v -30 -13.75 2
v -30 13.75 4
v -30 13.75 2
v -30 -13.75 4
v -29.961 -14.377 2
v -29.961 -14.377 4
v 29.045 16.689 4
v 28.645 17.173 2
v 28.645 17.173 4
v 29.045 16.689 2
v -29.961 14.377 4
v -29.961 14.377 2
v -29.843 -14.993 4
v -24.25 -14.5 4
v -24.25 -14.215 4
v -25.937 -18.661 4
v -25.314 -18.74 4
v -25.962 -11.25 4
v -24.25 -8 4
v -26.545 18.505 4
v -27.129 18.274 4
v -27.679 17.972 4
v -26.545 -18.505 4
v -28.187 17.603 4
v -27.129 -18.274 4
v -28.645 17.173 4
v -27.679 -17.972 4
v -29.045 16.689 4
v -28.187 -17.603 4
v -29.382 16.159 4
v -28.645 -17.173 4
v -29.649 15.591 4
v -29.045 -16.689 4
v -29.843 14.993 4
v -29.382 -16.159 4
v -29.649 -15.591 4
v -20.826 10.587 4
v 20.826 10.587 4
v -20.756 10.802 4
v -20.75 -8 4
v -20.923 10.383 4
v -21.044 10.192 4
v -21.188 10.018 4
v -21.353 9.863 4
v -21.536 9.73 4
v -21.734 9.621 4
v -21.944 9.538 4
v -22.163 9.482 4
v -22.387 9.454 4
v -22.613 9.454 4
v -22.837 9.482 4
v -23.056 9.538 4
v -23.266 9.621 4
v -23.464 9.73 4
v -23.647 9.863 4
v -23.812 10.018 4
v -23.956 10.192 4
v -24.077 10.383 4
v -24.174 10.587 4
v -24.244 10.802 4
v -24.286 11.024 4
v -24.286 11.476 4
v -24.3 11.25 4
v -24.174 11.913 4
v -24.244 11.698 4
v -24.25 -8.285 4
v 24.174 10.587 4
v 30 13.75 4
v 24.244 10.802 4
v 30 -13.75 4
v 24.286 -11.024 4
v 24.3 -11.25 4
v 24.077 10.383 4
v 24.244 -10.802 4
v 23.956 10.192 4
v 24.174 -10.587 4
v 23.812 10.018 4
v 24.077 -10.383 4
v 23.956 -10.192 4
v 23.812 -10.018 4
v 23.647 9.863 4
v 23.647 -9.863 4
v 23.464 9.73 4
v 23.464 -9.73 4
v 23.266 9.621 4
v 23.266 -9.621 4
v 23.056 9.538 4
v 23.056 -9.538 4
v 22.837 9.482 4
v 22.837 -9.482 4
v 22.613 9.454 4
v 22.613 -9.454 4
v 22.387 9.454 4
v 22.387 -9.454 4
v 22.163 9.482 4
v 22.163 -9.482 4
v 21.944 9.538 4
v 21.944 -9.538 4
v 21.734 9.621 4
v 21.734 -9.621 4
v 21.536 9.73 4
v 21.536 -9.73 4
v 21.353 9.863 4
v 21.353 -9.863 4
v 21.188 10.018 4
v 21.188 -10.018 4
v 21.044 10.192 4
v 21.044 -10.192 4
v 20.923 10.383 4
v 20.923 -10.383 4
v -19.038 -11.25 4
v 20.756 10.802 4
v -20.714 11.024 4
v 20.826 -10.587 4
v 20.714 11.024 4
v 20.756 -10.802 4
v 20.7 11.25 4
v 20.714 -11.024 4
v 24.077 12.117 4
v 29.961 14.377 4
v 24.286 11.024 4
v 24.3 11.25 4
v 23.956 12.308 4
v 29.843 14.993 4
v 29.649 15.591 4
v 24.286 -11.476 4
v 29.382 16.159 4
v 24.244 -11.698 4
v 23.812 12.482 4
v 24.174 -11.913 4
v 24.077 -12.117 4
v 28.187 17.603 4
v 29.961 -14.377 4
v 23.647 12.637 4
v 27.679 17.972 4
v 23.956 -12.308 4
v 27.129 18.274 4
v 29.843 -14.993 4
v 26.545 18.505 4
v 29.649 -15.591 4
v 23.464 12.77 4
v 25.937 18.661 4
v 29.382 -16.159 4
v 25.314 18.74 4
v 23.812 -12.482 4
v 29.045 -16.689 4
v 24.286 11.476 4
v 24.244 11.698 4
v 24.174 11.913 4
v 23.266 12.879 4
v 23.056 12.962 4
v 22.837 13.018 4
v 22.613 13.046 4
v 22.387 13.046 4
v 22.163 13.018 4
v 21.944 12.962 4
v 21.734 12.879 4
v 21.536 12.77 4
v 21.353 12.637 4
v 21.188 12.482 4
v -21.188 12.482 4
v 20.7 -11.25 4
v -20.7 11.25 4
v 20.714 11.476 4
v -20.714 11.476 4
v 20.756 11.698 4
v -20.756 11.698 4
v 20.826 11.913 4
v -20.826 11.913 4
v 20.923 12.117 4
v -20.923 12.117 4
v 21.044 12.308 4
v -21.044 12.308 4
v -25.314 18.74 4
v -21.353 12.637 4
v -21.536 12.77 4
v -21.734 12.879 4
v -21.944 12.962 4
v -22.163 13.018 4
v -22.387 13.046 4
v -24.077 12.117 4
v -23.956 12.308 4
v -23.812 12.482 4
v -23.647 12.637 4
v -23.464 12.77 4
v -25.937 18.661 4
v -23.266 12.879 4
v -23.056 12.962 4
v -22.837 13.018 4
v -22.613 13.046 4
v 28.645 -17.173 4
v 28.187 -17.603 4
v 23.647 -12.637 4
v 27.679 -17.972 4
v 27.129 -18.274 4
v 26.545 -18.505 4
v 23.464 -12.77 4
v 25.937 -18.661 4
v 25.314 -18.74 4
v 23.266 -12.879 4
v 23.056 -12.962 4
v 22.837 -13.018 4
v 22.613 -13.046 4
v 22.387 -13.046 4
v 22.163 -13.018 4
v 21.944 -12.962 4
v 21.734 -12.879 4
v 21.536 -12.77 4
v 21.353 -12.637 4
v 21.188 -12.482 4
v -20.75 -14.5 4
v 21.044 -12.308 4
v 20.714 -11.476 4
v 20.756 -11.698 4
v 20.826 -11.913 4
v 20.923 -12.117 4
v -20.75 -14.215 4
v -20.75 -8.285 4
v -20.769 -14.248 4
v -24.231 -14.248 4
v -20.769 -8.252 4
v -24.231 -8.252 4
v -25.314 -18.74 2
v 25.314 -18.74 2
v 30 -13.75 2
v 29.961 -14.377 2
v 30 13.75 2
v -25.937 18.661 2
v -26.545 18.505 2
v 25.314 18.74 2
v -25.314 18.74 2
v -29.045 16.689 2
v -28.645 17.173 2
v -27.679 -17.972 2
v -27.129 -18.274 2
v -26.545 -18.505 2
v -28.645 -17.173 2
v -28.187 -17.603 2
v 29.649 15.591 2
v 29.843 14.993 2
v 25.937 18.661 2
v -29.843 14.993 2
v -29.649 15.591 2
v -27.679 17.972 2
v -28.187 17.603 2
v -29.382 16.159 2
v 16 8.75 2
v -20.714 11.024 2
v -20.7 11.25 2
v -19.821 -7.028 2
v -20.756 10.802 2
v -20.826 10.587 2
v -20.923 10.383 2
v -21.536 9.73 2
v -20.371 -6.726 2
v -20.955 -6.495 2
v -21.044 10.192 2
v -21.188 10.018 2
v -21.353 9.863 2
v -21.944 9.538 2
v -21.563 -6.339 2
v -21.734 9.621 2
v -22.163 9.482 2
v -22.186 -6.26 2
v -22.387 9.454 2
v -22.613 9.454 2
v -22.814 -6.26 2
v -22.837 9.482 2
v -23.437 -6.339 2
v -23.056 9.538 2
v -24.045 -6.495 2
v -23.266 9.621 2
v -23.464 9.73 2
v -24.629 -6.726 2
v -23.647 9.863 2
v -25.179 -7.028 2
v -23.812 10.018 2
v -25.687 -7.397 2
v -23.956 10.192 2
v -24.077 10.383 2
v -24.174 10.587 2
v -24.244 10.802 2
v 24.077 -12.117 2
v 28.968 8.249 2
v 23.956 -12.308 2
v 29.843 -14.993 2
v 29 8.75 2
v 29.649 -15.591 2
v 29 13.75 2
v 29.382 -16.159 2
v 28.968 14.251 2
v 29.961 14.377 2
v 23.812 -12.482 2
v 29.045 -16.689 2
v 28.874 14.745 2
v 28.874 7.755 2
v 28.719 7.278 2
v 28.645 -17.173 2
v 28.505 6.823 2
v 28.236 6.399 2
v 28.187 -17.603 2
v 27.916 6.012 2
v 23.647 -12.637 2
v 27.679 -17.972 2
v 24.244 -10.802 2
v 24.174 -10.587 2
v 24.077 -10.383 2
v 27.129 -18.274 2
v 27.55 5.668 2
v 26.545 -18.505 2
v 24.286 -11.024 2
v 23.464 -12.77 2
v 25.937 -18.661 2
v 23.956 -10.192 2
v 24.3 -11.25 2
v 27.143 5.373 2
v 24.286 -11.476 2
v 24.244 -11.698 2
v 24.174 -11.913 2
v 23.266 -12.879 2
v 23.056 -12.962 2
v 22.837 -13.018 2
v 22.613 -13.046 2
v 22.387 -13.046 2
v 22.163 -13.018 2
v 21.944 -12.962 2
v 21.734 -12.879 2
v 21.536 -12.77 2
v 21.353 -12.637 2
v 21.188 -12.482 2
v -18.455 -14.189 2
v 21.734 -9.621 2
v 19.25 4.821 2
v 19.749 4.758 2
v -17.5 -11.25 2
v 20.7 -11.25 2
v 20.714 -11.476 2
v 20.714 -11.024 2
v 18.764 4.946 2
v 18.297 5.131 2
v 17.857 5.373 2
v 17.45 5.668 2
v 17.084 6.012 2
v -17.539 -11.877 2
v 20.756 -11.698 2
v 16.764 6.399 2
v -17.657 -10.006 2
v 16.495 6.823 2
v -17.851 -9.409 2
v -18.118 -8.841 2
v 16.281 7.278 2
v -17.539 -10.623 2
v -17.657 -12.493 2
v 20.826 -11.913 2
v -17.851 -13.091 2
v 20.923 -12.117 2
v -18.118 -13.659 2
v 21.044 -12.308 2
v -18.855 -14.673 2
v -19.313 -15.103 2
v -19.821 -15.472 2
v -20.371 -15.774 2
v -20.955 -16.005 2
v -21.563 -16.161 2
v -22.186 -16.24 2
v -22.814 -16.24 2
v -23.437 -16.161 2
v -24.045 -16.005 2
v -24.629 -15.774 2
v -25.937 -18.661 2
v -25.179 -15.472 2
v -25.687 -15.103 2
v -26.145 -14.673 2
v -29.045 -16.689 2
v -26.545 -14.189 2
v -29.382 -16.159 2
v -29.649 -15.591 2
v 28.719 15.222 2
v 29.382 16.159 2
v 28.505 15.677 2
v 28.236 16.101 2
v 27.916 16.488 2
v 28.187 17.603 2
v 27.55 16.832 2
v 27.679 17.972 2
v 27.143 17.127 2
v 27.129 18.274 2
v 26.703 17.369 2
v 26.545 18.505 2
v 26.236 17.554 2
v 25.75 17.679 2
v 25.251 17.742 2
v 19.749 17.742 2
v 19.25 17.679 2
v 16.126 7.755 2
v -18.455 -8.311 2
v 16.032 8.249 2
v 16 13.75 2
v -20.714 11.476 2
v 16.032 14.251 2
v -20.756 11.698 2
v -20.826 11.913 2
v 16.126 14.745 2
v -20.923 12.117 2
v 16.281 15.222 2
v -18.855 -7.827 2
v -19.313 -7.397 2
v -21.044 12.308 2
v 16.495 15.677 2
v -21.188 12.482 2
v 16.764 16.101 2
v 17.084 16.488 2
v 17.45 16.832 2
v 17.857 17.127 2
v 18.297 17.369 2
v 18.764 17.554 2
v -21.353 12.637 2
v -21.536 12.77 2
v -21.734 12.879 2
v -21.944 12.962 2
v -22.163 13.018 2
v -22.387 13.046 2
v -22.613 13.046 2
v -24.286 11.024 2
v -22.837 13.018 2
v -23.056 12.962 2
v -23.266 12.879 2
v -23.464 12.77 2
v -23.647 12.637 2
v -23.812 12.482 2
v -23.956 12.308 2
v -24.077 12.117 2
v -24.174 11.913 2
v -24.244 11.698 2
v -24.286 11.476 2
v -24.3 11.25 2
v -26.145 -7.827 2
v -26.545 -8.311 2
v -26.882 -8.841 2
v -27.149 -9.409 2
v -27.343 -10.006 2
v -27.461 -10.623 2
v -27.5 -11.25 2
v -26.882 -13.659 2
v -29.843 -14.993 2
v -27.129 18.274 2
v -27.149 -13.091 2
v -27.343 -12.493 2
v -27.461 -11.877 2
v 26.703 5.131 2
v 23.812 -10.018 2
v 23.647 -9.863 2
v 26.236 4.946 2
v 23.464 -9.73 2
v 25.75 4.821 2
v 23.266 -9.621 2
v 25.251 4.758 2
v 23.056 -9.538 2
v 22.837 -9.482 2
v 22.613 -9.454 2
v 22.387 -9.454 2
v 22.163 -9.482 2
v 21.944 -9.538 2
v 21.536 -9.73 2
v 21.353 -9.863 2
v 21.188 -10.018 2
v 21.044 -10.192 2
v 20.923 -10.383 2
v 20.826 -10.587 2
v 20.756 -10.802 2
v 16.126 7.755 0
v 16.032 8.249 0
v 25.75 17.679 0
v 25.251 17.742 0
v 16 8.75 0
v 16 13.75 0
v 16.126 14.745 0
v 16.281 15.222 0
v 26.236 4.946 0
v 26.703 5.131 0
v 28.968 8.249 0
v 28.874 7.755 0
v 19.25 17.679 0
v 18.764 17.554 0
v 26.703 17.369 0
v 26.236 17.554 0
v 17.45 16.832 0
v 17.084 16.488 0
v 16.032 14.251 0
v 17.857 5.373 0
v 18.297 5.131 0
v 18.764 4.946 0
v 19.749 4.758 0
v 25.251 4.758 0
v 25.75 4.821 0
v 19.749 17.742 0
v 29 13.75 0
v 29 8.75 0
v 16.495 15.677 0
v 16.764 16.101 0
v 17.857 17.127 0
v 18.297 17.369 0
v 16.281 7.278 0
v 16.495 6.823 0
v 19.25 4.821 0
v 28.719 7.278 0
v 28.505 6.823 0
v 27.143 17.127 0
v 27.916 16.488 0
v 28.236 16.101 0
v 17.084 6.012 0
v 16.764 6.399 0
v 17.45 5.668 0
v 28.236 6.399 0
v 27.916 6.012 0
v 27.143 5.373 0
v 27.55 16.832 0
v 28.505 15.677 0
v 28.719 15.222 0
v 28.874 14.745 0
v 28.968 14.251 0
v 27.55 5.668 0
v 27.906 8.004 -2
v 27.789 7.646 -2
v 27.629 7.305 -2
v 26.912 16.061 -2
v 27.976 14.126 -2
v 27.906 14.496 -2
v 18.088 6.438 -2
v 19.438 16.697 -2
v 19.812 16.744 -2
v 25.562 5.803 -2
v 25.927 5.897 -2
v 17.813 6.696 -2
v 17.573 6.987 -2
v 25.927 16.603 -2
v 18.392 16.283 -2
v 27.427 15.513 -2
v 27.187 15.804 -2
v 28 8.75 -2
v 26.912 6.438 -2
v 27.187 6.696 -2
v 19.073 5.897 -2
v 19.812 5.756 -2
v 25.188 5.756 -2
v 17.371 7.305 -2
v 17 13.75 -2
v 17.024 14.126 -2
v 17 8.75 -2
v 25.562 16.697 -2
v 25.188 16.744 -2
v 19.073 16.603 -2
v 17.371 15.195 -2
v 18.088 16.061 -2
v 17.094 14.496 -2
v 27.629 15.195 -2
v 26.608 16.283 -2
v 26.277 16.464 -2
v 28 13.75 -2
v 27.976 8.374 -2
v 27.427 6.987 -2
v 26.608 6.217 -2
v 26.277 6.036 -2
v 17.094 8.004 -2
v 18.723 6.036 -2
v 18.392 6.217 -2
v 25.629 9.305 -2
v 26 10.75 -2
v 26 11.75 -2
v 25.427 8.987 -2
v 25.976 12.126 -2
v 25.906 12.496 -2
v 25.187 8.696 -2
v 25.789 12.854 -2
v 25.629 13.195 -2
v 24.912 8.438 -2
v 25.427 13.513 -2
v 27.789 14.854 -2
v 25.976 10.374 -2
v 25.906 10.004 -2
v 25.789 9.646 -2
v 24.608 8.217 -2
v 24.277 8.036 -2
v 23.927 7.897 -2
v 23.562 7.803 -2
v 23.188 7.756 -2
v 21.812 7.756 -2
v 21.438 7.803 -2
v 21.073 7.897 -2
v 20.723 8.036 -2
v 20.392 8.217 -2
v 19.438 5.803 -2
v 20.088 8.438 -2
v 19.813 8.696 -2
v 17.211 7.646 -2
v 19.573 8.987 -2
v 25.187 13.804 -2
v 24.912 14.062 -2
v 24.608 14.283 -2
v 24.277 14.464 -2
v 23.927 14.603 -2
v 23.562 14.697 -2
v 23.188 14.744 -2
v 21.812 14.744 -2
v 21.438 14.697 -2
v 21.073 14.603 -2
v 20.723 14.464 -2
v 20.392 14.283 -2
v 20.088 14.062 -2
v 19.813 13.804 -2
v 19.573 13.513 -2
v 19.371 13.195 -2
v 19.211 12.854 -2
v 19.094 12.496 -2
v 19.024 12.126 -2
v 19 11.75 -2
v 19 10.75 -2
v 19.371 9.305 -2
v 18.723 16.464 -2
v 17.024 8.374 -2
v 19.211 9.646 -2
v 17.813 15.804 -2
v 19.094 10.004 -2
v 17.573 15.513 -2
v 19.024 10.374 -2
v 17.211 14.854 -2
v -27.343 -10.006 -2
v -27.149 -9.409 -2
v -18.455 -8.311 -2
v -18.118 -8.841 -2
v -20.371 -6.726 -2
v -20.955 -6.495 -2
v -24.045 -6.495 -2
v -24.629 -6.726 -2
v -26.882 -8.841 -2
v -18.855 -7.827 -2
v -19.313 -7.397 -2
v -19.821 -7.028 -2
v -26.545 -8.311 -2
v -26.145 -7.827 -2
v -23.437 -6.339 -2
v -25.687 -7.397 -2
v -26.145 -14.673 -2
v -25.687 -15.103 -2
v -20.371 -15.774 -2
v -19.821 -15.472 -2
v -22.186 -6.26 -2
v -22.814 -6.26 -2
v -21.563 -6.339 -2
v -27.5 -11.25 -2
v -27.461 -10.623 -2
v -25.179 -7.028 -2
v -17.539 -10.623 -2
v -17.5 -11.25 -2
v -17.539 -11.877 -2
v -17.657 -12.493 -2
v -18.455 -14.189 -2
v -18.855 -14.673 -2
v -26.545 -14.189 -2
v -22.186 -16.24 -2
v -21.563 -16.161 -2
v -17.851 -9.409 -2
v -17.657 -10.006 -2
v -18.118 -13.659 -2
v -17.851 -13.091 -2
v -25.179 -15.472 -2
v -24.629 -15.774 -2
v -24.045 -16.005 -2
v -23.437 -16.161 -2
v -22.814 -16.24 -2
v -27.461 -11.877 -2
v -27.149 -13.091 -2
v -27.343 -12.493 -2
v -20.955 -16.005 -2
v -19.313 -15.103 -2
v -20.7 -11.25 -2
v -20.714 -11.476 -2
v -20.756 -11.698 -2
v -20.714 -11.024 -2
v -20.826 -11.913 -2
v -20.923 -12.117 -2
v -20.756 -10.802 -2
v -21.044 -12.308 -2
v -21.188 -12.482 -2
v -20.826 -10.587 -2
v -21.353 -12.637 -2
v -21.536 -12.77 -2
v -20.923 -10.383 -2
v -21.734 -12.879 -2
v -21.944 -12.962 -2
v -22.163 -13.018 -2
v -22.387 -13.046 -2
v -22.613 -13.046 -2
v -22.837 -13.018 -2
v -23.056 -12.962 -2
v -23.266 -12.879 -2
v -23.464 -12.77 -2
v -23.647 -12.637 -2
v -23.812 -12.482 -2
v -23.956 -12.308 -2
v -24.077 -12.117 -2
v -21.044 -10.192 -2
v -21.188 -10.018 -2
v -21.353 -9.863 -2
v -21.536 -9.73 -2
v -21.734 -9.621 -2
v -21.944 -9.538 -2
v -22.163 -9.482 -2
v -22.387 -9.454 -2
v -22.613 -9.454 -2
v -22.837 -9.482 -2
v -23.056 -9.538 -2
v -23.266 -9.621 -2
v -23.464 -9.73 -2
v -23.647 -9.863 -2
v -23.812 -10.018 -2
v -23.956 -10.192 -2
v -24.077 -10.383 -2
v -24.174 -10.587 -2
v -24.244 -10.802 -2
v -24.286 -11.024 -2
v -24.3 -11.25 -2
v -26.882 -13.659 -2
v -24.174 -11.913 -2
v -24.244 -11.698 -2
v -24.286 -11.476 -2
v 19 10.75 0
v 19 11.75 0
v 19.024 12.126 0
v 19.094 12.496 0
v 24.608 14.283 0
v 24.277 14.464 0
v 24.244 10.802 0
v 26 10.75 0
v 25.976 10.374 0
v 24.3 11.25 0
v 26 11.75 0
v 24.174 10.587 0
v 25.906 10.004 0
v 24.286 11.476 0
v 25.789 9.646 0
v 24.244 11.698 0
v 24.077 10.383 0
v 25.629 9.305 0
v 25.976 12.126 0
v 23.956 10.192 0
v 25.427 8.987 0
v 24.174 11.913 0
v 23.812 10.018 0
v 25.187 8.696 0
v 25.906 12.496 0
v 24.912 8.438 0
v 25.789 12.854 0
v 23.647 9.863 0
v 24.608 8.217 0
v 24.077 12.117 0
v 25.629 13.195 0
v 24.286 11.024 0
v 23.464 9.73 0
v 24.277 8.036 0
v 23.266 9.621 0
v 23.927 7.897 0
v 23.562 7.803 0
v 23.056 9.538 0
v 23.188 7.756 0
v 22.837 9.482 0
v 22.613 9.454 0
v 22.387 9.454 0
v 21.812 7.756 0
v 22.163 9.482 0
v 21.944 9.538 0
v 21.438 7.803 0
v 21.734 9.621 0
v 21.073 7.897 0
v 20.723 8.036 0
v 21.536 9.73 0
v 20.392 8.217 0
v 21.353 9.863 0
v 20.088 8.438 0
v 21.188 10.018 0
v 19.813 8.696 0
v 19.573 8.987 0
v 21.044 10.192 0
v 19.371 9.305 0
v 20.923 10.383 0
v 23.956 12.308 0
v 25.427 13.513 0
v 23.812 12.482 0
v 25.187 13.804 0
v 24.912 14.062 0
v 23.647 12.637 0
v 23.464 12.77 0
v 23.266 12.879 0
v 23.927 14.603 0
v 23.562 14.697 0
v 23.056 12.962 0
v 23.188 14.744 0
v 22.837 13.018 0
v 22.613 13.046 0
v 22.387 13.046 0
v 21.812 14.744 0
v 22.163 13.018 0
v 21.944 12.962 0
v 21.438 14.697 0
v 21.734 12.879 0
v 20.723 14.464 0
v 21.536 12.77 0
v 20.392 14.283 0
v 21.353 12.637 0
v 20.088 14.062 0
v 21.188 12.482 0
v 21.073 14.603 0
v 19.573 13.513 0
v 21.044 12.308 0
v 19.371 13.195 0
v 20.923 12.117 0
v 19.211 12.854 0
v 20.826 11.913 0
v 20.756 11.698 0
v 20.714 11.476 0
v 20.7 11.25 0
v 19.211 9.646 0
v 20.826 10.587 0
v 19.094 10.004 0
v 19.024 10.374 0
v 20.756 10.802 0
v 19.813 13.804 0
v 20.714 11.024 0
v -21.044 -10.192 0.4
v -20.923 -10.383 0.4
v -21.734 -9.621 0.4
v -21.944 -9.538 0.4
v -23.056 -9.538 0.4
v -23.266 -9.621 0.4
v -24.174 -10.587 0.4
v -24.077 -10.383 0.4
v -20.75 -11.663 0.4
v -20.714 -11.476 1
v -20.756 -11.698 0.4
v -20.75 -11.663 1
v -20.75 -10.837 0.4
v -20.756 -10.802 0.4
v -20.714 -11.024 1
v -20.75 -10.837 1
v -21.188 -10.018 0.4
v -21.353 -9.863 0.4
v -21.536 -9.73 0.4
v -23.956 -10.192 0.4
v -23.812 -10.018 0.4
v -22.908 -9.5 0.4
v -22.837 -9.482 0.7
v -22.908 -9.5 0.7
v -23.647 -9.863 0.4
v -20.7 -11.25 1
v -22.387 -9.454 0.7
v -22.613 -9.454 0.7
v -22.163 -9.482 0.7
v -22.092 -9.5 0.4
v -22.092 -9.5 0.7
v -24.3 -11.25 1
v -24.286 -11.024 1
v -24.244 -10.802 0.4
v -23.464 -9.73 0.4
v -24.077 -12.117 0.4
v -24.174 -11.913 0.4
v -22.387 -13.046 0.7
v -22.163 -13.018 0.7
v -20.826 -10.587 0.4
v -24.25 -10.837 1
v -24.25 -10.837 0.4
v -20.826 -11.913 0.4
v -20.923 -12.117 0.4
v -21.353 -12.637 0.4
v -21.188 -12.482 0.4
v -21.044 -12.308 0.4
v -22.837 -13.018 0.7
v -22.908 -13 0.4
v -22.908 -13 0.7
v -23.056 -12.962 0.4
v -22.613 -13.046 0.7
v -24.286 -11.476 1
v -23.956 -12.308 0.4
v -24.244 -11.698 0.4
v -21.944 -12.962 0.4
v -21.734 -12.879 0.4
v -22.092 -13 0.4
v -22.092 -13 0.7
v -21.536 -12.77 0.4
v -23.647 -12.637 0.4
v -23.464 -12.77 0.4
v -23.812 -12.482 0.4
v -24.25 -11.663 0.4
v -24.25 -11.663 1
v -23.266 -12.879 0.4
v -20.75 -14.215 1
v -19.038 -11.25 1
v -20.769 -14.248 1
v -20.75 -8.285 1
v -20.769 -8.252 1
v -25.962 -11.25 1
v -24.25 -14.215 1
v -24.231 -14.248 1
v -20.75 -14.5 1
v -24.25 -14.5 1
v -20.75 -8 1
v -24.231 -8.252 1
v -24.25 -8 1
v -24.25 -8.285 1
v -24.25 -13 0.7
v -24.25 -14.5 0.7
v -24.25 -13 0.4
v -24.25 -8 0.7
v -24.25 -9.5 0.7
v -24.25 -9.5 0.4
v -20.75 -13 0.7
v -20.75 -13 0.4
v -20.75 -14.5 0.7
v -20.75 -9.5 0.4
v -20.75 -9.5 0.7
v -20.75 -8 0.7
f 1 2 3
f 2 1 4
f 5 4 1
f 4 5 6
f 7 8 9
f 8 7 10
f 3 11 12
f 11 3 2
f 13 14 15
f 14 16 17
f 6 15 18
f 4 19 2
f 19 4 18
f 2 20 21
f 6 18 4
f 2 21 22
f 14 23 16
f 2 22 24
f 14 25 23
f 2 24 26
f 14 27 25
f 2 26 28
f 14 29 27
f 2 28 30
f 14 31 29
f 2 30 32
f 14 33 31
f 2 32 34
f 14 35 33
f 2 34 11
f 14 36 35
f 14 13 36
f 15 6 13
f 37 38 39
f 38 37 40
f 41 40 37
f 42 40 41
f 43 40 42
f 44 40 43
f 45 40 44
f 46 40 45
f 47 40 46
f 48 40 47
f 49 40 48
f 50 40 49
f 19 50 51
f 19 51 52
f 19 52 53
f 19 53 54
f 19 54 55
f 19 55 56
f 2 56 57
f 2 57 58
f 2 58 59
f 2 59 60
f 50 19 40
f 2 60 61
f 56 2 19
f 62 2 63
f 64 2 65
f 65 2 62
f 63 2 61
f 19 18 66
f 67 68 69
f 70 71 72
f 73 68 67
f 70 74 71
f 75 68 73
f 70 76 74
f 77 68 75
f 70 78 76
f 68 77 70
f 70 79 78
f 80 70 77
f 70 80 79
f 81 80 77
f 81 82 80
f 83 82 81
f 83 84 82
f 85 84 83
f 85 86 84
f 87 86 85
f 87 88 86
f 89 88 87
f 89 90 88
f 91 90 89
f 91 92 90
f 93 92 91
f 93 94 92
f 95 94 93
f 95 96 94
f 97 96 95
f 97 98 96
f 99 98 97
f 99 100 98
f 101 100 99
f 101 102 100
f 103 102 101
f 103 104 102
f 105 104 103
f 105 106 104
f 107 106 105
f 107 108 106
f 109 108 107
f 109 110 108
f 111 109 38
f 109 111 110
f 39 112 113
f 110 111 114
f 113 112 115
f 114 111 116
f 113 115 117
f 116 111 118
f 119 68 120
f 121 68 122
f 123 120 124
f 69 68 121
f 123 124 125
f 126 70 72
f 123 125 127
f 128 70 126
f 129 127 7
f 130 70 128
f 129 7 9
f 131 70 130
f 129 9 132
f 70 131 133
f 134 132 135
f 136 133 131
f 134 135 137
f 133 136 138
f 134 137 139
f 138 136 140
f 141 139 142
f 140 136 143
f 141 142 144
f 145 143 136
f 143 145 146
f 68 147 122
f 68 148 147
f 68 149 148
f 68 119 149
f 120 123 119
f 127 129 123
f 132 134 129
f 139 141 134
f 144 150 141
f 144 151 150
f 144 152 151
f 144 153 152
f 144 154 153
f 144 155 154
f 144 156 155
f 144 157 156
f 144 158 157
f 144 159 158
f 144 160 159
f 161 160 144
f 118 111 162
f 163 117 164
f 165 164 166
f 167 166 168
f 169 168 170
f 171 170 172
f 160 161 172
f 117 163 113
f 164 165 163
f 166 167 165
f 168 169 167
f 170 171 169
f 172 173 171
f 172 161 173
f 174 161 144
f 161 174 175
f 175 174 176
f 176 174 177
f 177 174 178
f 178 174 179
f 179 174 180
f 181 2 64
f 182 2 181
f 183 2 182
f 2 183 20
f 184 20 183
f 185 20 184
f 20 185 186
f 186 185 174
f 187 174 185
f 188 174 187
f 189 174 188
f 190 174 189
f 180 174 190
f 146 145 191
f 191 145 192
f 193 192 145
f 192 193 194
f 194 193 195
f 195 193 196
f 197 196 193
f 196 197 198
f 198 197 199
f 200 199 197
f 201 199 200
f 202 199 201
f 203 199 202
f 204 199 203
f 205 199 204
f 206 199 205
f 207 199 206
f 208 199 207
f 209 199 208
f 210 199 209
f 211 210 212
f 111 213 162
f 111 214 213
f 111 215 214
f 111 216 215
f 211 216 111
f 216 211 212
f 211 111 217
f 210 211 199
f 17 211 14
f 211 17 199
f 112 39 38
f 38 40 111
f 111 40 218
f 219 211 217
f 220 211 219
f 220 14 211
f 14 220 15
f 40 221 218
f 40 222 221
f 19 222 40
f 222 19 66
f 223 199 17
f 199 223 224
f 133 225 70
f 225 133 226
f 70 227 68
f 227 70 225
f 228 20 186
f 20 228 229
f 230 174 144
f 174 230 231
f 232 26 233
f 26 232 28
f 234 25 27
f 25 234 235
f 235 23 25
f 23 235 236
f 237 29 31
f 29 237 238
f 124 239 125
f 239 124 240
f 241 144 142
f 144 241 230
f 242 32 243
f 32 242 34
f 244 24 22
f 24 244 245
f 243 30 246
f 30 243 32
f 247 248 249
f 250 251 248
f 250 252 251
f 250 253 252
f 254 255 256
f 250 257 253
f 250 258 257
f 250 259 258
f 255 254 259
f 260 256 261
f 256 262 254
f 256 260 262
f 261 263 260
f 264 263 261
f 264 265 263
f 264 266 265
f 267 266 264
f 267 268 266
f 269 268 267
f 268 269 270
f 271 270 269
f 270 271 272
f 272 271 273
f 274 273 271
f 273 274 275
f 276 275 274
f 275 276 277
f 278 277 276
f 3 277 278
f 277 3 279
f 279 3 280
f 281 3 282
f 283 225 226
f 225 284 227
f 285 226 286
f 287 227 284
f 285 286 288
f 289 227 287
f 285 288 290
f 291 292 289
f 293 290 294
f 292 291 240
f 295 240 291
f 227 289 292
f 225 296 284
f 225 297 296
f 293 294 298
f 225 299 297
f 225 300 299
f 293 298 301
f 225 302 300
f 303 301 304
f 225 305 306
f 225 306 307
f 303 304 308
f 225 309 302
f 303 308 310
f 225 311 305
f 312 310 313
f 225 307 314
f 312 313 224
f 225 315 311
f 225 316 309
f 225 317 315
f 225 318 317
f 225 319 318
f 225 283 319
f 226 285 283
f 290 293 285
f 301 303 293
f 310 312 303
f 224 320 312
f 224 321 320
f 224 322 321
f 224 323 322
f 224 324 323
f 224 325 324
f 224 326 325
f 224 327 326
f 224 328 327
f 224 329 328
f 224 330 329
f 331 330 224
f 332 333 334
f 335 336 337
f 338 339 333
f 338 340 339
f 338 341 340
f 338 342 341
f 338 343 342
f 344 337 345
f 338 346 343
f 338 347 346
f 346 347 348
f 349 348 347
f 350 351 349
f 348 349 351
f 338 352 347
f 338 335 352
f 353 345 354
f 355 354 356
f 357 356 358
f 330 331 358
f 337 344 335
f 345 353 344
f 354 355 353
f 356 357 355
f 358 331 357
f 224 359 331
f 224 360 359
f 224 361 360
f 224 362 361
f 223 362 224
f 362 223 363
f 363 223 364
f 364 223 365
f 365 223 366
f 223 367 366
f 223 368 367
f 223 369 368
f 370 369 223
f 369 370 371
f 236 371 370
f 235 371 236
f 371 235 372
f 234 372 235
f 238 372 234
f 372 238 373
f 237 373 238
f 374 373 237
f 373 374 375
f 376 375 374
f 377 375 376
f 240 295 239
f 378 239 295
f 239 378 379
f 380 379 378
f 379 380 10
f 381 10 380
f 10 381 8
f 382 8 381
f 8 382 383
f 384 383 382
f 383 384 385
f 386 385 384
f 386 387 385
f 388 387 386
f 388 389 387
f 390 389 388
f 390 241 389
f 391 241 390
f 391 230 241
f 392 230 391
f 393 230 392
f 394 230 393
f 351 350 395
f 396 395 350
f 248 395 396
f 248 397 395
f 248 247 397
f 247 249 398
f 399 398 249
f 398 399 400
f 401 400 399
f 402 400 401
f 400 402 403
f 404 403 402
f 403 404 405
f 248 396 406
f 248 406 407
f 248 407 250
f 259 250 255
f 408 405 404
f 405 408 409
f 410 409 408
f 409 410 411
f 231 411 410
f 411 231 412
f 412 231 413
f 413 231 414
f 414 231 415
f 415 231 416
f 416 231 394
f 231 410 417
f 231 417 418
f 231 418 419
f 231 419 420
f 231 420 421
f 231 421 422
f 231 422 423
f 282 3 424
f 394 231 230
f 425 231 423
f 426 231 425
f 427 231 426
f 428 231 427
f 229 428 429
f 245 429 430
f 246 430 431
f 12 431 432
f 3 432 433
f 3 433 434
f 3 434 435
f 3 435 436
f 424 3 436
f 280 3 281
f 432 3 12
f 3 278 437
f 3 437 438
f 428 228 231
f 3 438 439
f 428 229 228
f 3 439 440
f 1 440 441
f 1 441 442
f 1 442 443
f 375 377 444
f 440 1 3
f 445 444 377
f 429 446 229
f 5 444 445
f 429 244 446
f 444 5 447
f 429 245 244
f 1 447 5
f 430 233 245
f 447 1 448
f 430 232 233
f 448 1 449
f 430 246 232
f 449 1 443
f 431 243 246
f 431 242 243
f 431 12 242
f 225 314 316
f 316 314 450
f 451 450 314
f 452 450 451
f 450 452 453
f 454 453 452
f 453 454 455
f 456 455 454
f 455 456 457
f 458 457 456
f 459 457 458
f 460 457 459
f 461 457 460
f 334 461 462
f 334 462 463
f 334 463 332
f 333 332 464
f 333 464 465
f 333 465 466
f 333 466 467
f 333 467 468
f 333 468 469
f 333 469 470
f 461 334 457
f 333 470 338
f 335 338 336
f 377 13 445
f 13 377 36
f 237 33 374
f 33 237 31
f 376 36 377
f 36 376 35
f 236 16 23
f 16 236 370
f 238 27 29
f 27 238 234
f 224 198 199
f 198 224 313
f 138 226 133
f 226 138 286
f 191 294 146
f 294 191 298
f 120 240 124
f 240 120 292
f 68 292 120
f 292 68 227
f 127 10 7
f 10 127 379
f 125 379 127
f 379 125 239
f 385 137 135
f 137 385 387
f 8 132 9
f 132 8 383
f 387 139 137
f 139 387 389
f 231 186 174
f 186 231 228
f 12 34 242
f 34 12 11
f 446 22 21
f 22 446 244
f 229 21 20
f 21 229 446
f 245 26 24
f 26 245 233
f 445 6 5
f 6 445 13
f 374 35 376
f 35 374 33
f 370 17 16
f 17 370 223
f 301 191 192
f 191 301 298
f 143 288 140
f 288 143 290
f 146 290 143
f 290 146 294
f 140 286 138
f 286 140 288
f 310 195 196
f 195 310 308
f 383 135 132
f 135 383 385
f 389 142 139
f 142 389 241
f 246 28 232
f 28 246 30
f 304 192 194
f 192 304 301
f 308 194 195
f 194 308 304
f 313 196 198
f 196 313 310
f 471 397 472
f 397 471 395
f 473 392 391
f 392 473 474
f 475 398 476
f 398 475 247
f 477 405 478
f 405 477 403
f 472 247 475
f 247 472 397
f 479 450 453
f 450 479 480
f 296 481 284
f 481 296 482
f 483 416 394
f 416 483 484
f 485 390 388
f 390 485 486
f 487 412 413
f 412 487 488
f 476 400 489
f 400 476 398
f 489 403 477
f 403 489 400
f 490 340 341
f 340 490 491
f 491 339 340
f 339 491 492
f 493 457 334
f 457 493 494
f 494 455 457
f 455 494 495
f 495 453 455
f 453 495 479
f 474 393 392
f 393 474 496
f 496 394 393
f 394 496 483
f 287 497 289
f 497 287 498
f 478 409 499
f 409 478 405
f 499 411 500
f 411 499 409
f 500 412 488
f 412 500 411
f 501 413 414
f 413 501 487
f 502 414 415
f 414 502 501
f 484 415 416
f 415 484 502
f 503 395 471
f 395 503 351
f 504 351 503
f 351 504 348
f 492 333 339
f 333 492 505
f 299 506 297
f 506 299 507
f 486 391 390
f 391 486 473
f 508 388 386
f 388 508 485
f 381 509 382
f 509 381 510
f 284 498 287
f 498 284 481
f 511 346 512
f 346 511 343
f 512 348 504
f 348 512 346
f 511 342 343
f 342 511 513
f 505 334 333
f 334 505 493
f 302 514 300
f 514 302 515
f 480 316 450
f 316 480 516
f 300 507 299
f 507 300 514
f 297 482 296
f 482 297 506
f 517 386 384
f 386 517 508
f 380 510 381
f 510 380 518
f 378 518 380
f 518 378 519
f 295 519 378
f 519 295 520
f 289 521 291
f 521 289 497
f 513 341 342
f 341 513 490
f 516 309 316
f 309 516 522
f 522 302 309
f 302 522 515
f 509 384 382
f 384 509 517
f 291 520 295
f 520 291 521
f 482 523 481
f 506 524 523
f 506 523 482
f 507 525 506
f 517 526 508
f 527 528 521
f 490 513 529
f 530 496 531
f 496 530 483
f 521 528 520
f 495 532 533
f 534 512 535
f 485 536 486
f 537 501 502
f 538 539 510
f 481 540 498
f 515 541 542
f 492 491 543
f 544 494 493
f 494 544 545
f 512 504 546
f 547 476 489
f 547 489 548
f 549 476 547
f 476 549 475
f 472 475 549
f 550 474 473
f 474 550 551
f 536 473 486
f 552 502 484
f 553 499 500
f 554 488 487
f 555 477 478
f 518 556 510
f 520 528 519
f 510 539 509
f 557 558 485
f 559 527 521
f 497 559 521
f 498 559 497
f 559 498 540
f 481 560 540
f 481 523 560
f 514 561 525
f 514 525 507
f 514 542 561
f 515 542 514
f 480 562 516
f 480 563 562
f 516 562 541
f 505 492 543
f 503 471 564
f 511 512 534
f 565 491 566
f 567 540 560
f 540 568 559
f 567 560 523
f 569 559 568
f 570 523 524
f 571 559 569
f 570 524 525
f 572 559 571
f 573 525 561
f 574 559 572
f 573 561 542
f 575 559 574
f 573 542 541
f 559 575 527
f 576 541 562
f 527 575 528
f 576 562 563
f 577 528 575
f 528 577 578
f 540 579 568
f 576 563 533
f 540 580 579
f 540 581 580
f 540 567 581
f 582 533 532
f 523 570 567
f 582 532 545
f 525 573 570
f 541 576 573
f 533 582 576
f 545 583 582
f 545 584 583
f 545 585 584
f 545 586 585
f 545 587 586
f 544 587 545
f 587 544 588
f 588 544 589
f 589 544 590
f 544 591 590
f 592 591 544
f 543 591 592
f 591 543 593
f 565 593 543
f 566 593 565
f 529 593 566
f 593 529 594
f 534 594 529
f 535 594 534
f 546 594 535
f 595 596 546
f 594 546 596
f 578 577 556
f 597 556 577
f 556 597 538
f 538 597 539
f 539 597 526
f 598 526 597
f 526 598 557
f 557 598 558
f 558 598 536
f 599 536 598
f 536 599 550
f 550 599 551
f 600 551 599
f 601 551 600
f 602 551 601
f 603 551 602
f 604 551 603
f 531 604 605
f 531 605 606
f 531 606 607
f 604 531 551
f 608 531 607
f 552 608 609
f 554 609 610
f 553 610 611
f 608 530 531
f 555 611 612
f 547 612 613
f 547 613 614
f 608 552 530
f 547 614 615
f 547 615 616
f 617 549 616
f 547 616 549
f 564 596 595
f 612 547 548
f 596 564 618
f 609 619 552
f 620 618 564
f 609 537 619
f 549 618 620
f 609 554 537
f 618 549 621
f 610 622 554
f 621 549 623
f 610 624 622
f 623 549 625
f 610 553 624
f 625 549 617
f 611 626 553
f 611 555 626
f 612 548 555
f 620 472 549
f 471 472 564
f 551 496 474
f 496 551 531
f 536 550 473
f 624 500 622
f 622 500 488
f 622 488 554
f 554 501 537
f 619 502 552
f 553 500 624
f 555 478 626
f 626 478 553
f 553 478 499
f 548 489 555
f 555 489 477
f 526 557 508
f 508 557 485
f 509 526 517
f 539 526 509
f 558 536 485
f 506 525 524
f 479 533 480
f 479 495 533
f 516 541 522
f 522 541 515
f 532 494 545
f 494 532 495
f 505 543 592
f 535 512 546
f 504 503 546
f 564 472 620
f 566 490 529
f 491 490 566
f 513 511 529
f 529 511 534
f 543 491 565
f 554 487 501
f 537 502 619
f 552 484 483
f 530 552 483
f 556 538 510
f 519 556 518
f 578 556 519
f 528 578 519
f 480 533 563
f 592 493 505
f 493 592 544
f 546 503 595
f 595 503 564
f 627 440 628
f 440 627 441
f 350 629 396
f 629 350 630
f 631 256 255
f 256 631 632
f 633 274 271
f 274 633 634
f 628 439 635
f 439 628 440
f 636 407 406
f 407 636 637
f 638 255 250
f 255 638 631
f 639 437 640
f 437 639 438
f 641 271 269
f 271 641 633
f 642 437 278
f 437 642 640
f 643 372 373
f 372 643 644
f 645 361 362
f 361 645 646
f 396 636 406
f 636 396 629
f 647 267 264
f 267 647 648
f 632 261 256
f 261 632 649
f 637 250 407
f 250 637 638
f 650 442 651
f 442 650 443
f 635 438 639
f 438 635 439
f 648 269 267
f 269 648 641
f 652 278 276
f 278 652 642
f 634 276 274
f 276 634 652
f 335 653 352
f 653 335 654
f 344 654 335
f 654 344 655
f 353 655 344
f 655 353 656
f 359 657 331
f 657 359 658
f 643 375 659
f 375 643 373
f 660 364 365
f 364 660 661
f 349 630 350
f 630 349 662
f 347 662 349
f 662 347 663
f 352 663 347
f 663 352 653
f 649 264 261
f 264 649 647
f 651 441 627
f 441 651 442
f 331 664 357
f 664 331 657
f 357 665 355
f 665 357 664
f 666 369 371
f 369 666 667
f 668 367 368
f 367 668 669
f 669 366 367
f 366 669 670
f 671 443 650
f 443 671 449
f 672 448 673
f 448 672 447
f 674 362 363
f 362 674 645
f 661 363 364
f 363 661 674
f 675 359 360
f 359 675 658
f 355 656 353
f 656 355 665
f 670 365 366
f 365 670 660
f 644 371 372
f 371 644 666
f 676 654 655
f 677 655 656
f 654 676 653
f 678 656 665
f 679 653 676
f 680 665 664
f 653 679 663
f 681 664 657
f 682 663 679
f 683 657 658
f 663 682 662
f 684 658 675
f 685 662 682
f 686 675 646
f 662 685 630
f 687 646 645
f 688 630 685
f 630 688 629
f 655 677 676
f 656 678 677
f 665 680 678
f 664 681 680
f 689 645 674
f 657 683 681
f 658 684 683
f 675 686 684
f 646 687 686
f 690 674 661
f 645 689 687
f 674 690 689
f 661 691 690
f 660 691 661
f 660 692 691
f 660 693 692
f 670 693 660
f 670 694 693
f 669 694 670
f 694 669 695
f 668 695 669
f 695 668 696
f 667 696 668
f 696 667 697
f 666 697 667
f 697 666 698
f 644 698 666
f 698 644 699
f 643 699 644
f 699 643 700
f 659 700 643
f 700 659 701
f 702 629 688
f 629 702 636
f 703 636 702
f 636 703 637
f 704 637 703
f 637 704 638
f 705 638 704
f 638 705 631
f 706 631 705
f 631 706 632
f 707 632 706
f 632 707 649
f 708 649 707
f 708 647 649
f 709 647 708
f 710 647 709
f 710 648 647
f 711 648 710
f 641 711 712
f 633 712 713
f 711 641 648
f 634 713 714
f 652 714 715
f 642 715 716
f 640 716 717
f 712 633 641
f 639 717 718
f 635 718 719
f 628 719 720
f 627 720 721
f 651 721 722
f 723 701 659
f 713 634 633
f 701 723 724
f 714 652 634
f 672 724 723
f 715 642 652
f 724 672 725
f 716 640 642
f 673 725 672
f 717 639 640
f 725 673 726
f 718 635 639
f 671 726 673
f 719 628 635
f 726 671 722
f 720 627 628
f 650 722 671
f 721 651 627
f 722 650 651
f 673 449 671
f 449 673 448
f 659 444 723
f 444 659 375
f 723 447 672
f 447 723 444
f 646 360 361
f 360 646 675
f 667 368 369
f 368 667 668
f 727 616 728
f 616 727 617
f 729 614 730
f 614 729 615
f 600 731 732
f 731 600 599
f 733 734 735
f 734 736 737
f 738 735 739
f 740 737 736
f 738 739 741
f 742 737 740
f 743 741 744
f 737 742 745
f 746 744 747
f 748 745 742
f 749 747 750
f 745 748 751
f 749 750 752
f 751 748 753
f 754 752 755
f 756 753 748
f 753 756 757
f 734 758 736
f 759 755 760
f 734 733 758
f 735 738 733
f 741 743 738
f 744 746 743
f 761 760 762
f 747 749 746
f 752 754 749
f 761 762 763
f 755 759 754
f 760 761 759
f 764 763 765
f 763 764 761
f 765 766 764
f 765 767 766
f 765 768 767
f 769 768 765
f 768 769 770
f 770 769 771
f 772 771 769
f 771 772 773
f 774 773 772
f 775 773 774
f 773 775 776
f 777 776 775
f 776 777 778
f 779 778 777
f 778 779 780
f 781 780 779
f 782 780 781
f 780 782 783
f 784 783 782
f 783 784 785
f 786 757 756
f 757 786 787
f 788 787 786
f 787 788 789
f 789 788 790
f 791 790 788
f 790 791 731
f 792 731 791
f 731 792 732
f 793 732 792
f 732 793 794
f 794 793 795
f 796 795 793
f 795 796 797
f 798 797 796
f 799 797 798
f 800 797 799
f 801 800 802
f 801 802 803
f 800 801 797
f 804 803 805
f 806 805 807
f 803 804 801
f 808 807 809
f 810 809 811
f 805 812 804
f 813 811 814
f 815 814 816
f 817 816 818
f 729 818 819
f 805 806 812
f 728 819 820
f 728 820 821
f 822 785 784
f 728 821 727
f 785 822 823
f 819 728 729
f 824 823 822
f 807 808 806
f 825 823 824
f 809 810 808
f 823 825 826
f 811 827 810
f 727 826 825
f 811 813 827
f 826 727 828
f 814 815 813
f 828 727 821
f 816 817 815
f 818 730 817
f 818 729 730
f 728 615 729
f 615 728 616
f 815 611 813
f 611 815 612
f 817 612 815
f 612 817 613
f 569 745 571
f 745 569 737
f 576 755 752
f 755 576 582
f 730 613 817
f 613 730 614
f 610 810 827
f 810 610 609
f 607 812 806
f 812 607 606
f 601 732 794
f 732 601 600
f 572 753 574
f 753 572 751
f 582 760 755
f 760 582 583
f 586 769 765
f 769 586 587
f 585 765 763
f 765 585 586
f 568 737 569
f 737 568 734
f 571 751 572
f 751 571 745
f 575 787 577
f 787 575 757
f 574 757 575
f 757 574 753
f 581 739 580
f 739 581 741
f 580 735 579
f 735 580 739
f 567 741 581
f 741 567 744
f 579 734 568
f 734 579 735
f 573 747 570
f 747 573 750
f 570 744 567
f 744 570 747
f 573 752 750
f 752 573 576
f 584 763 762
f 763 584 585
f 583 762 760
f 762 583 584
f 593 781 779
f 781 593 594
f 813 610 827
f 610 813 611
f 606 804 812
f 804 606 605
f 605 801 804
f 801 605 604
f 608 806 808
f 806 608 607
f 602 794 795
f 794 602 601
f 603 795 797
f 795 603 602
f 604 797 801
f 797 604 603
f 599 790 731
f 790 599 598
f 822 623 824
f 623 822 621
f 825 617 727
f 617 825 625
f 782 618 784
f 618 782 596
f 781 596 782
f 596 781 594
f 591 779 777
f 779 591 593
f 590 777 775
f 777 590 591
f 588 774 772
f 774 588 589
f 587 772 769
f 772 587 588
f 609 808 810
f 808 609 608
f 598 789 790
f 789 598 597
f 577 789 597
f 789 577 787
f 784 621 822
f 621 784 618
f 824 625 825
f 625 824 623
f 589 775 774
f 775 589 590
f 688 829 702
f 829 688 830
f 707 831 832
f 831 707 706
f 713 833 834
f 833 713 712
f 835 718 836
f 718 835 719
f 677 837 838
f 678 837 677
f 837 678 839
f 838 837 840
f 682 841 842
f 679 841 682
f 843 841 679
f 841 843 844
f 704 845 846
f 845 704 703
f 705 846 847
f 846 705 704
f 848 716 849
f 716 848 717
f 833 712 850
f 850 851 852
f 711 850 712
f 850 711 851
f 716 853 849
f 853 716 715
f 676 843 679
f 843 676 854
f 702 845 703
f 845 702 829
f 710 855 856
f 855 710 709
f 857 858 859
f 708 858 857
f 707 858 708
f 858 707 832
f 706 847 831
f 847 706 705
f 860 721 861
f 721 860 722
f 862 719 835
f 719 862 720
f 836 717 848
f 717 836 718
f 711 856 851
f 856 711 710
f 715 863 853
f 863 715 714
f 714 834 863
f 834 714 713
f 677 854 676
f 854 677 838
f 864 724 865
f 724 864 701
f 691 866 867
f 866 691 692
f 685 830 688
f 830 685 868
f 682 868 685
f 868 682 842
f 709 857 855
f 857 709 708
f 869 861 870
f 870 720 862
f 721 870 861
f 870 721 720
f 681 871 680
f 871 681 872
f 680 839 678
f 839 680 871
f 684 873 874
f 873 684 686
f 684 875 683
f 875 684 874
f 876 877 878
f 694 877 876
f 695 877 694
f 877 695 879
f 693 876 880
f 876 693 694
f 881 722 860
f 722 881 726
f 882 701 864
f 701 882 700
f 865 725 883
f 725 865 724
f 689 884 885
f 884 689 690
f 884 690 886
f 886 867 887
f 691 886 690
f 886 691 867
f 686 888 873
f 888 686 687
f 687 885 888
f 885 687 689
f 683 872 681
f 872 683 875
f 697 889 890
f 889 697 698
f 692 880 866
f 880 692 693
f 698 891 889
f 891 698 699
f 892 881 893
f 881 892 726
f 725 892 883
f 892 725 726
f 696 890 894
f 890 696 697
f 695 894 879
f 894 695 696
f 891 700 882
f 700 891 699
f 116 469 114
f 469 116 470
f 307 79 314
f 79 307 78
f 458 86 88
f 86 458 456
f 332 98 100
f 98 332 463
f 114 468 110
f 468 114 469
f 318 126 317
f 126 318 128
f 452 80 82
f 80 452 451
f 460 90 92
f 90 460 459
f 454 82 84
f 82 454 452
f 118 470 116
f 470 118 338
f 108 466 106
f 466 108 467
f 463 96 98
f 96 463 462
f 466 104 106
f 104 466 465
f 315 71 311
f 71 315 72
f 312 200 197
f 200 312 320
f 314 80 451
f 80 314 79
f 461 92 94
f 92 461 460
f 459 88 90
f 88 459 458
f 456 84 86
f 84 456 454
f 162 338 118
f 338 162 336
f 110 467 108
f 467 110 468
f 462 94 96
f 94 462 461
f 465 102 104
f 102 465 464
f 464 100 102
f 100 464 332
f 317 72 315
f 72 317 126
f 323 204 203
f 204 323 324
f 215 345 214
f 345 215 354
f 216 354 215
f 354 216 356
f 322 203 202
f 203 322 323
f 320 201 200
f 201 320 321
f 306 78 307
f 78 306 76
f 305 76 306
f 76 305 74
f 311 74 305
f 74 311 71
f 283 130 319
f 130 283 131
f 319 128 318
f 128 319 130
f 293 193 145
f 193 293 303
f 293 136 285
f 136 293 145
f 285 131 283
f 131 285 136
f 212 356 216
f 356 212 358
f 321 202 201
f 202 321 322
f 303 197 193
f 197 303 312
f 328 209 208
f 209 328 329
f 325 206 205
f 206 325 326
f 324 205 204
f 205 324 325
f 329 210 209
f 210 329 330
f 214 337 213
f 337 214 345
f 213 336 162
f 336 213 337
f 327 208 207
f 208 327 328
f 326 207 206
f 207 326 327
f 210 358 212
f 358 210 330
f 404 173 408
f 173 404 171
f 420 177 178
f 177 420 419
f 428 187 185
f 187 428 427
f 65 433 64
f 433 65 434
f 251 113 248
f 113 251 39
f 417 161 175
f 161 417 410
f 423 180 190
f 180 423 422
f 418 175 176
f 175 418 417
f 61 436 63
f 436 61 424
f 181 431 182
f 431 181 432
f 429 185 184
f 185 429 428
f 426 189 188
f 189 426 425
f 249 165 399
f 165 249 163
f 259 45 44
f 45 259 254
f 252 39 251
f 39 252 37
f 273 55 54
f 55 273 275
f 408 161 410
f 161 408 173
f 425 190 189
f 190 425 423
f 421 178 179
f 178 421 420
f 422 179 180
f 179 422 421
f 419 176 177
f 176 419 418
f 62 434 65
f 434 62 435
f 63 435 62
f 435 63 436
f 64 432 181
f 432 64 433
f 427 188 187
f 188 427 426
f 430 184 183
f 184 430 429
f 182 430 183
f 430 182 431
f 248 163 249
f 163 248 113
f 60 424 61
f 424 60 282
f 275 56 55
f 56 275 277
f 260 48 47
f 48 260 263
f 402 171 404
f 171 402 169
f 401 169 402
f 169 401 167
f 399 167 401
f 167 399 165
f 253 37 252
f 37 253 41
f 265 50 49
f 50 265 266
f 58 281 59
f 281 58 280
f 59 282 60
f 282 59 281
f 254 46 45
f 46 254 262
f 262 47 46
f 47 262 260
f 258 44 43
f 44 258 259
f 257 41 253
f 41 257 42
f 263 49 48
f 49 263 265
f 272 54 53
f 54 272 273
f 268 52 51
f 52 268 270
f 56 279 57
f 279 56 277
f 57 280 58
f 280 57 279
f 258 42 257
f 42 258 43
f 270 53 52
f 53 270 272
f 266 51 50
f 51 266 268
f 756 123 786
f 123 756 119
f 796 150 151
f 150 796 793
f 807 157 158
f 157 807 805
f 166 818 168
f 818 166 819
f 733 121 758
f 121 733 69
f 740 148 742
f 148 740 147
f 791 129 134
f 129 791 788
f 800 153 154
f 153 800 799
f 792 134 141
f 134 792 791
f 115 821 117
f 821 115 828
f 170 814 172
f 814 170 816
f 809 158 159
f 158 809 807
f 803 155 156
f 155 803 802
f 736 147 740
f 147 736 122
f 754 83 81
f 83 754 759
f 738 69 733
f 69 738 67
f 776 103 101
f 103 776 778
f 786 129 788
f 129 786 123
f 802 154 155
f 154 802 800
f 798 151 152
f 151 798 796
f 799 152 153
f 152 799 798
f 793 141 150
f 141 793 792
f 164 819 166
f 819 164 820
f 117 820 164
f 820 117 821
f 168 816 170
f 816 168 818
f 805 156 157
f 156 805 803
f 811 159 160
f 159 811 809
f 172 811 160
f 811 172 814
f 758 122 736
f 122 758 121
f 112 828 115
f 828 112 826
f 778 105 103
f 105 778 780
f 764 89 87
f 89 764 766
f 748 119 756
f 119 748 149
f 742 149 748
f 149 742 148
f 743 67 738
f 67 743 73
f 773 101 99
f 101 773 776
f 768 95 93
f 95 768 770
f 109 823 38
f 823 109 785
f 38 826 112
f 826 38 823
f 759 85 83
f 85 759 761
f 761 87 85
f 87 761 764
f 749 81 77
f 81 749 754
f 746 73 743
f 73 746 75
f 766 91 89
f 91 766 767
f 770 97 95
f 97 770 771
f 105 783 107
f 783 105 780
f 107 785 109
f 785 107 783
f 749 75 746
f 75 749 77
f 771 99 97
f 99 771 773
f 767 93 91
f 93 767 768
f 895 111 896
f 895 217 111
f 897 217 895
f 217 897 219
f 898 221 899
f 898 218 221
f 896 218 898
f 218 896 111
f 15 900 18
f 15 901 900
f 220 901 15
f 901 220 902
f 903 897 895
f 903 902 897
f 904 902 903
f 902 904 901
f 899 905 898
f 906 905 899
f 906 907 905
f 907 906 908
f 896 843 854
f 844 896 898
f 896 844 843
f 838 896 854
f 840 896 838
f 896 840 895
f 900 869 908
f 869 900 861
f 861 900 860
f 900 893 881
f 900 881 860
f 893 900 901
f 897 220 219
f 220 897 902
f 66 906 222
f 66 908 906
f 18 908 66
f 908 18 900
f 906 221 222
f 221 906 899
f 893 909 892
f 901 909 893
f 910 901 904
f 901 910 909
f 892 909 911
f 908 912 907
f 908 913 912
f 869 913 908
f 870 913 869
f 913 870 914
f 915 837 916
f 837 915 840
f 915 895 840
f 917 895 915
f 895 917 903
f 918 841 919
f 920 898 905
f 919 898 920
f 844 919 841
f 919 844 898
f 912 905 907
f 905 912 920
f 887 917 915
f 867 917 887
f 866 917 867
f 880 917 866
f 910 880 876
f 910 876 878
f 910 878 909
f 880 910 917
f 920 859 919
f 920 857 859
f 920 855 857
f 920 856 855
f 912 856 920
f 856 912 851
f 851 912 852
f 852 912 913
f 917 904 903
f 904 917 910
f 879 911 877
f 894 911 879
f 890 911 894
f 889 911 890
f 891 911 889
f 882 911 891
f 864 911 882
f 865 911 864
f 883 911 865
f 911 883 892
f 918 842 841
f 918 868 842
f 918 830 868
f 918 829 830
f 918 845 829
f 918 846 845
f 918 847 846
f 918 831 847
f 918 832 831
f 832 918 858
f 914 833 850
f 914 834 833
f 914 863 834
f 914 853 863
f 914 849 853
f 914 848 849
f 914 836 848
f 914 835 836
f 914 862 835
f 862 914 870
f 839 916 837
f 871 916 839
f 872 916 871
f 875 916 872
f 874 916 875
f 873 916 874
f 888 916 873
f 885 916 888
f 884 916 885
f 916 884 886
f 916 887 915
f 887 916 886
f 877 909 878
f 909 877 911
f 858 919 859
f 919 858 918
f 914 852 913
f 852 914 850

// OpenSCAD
$fn = 50;


difference() {
	union() {
		translate(v = [0, 0, 2]) {
			rotate(a = [0, 0, 0]) {
				hull() {
					translate(v = [-25.0000000000, 13.7500000000, 0]) {
						rotate(a = [0, 0, 0]) {
							translate(v = [0, 0, 0]) {
								rotate(a = [0, 0, 0]) {
									cylinder(h = 2, r = 5);
								}
							}
						}
					}
					translate(v = [25.0000000000, 13.7500000000, 0]) {
						rotate(a = [0, 0, 0]) {
							translate(v = [0, 0, 0]) {
								rotate(a = [0, 0, 0]) {
									cylinder(h = 2, r = 5);
								}
							}
						}
					}
					translate(v = [-25.0000000000, -13.7500000000, 0]) {
						rotate(a = [0, 0, 0]) {
							translate(v = [0, 0, 0]) {
								rotate(a = [0, 0, 0]) {
									cylinder(h = 2, r = 5);
								}
							}
						}
					}
					translate(v = [25.0000000000, -13.7500000000, 0]) {
						rotate(a = [0, 0, 0]) {
							translate(v = [0, 0, 0]) {
								rotate(a = [0, 0, 0]) {
									cylinder(h = 2, r = 5);
								}
							}
						}
					}
				}
			}
		}
		translate(v = [22.5000000000, 11.2500000000, 0]) {
			rotate(a = [0, 0, 0]) {
				hull() {
					translate(v = [-2.5000000000, 2.5000000000, 0]) {
						rotate(a = [0, 0, 0]) {
							cylinder(h = 2, r1 = 4.0000000000, r2 = 4.0000000000);
						}
					}
					translate(v = [2.5000000000, 2.5000000000, 0]) {
						rotate(a = [0, 0, 0]) {
							cylinder(h = 2, r1 = 4.0000000000, r2 = 4.0000000000);
						}
					}
					translate(v = [-2.5000000000, -2.5000000000, 0]) {
						rotate(a = [0, 0, 0]) {
							cylinder(h = 2, r1 = 4.0000000000, r2 = 4.0000000000);
						}
					}
					translate(v = [2.5000000000, -2.5000000000, 0]) {
						rotate(a = [0, 0, 0]) {
							cylinder(h = 2, r1 = 4.0000000000, r2 = 4.0000000000);
						}
					}
				}
			}
		}
		translate(v = [22.5000000000, 11.2500000000, -2]) {
			rotate(a = [0, 180, 0]) {
				hull() {
					translate(v = [-2.5000000000, 2.5000000000, 0]) {
						rotate(a = [0, 180, 0]) {
							cylinder(h = 2, r1 = 3.0000000000, r2 = 4.0000000000);
						}
					}
					translate(v = [2.5000000000, 2.5000000000, 0]) {
						rotate(a = [0, 180, 0]) {
							cylinder(h = 2, r1 = 3.0000000000, r2 = 4.0000000000);
						}
					}
					translate(v = [-2.5000000000, -2.5000000000, 0]) {
						rotate(a = [0, 180, 0]) {
							cylinder(h = 2, r1 = 3.0000000000, r2 = 4.0000000000);
						}
					}
					translate(v = [2.5000000000, -2.5000000000, 0]) {
						rotate(a = [0, 180, 0]) {
							cylinder(h = 2, r1 = 3.0000000000, r2 = 4.0000000000);
						}
					}
				}
			}
		}
		translate(v = [-22.5000000000, -11.2500000000, -2.0000000000]) {
			rotate(a = [0, 0, 0]) {
				cylinder(h = 4, r = 5);
			}
		}
	}
	union() {
		translate(v = [22.5000000000, 11.2500000000, -2]) {
			rotate(a = [0, 0, 0]) {
				hull() {
					translate(v = [-0.5000000000, 0.5000000000, 0]) {
						rotate(a = [0, 0, 0]) {
							translate(v = [0, 0, 0]) {
								rotate(a = [0, 0, 0]) {
									cylinder(h = 2, r = 3.0000000000);
								}
							}
						}
					}
					translate(v = [0.5000000000, 0.5000000000, 0]) {
						rotate(a = [0, 0, 0]) {
							translate(v = [0, 0, 0]) {
								rotate(a = [0, 0, 0]) {
									cylinder(h = 2, r = 3.0000000000);
								}
							}
						}
					}
					translate(v = [-0.5000000000, -0.5000000000, 0]) {
						rotate(a = [0, 0, 0]) {
							translate(v = [0, 0, 0]) {
								rotate(a = [0, 0, 0]) {
									cylinder(h = 2, r = 3.0000000000);
								}
							}
						}
					}
					translate(v = [0.5000000000, -0.5000000000, 0]) {
						rotate(a = [0, 0, 0]) {
							translate(v = [0, 0, 0]) {
								rotate(a = [0, 0, 0]) {
									cylinder(h = 2, r = 3.0000000000);
								}
							}
						}
					}
				}
			}
		}
		translate(v = [-22.5000000000, -11.2500000000, -50]) {
			rotate(a = [0, 0, 0]) {
				cylinder(h = 100, r = 1.8000000000);
			}
		}
		translate(v = [22.5000000000, -11.2500000000, -50]) {
			rotate(a = [0, 0, 0]) {
				cylinder(h = 100, r = 1.8000000000);
			}
		}
		translate(v = [-22.5000000000, 11.2500000000, -50]) {
			rotate(a = [0, 0, 0]) {
				cylinder(h = 100, r = 1.8000000000);
			}
		}
		translate(v = [22.5000000000, 11.2500000000, -50]) {
			rotate(a = [0, 0, 0]) {
				cylinder(h = 100, r = 1.8000000000);
			}
		}
		translate(v = [-22.5000000000, -11.2500000000, 1]) {
			rotate(a = [0, 0, 0]) {
				#translate(v = [0, 0, 0]) {
					rotate(a = [0, 0, 0]) {
						linear_extrude(height = 3) {
							polygon(points = [[3.4620000000, 0.0000000000], [1.7310000000, 2.9981799479], [-1.7310000000, 2.9981799479], [-3.4620000000, 0.0000000000], [-1.7310000000, -2.9981799479], [1.7310000000, -2.9981799479]]);
						}
					}
				}
			}
		}
		#translate(v = [-24.2500000000, -14.5000000000, 4]) {
			rotate(a = [0, 0, 0]) {
				cube(size = [3.5000000000, 6.5000000000, 0.3000000000]);
			}
		}
		#translate(v = [-24.2500000000, -13.0000000000, 4.3000000000]) {
			rotate(a = [0, 0, 0]) {
				cube(size = [3.5000000000, 3.5000000000, 0.3000000000]);
			}
		}
		#translate(v = [-24.2500000000, -14.5000000000, 0.7000000000]) {
			rotate(a = [0, 0, 0]) {
				cube(size = [3.5000000000, 6.5000000000, 0.3000000000]);
			}
		}
		#translate(v = [-24.2500000000, -13.0000000000, 0.4000000000]) {
			rotate(a = [0, 0, 0]) {
				cube(size = [3.5000000000, 3.5000000000, 0.3000000000]);
			}
		}
	}
}
